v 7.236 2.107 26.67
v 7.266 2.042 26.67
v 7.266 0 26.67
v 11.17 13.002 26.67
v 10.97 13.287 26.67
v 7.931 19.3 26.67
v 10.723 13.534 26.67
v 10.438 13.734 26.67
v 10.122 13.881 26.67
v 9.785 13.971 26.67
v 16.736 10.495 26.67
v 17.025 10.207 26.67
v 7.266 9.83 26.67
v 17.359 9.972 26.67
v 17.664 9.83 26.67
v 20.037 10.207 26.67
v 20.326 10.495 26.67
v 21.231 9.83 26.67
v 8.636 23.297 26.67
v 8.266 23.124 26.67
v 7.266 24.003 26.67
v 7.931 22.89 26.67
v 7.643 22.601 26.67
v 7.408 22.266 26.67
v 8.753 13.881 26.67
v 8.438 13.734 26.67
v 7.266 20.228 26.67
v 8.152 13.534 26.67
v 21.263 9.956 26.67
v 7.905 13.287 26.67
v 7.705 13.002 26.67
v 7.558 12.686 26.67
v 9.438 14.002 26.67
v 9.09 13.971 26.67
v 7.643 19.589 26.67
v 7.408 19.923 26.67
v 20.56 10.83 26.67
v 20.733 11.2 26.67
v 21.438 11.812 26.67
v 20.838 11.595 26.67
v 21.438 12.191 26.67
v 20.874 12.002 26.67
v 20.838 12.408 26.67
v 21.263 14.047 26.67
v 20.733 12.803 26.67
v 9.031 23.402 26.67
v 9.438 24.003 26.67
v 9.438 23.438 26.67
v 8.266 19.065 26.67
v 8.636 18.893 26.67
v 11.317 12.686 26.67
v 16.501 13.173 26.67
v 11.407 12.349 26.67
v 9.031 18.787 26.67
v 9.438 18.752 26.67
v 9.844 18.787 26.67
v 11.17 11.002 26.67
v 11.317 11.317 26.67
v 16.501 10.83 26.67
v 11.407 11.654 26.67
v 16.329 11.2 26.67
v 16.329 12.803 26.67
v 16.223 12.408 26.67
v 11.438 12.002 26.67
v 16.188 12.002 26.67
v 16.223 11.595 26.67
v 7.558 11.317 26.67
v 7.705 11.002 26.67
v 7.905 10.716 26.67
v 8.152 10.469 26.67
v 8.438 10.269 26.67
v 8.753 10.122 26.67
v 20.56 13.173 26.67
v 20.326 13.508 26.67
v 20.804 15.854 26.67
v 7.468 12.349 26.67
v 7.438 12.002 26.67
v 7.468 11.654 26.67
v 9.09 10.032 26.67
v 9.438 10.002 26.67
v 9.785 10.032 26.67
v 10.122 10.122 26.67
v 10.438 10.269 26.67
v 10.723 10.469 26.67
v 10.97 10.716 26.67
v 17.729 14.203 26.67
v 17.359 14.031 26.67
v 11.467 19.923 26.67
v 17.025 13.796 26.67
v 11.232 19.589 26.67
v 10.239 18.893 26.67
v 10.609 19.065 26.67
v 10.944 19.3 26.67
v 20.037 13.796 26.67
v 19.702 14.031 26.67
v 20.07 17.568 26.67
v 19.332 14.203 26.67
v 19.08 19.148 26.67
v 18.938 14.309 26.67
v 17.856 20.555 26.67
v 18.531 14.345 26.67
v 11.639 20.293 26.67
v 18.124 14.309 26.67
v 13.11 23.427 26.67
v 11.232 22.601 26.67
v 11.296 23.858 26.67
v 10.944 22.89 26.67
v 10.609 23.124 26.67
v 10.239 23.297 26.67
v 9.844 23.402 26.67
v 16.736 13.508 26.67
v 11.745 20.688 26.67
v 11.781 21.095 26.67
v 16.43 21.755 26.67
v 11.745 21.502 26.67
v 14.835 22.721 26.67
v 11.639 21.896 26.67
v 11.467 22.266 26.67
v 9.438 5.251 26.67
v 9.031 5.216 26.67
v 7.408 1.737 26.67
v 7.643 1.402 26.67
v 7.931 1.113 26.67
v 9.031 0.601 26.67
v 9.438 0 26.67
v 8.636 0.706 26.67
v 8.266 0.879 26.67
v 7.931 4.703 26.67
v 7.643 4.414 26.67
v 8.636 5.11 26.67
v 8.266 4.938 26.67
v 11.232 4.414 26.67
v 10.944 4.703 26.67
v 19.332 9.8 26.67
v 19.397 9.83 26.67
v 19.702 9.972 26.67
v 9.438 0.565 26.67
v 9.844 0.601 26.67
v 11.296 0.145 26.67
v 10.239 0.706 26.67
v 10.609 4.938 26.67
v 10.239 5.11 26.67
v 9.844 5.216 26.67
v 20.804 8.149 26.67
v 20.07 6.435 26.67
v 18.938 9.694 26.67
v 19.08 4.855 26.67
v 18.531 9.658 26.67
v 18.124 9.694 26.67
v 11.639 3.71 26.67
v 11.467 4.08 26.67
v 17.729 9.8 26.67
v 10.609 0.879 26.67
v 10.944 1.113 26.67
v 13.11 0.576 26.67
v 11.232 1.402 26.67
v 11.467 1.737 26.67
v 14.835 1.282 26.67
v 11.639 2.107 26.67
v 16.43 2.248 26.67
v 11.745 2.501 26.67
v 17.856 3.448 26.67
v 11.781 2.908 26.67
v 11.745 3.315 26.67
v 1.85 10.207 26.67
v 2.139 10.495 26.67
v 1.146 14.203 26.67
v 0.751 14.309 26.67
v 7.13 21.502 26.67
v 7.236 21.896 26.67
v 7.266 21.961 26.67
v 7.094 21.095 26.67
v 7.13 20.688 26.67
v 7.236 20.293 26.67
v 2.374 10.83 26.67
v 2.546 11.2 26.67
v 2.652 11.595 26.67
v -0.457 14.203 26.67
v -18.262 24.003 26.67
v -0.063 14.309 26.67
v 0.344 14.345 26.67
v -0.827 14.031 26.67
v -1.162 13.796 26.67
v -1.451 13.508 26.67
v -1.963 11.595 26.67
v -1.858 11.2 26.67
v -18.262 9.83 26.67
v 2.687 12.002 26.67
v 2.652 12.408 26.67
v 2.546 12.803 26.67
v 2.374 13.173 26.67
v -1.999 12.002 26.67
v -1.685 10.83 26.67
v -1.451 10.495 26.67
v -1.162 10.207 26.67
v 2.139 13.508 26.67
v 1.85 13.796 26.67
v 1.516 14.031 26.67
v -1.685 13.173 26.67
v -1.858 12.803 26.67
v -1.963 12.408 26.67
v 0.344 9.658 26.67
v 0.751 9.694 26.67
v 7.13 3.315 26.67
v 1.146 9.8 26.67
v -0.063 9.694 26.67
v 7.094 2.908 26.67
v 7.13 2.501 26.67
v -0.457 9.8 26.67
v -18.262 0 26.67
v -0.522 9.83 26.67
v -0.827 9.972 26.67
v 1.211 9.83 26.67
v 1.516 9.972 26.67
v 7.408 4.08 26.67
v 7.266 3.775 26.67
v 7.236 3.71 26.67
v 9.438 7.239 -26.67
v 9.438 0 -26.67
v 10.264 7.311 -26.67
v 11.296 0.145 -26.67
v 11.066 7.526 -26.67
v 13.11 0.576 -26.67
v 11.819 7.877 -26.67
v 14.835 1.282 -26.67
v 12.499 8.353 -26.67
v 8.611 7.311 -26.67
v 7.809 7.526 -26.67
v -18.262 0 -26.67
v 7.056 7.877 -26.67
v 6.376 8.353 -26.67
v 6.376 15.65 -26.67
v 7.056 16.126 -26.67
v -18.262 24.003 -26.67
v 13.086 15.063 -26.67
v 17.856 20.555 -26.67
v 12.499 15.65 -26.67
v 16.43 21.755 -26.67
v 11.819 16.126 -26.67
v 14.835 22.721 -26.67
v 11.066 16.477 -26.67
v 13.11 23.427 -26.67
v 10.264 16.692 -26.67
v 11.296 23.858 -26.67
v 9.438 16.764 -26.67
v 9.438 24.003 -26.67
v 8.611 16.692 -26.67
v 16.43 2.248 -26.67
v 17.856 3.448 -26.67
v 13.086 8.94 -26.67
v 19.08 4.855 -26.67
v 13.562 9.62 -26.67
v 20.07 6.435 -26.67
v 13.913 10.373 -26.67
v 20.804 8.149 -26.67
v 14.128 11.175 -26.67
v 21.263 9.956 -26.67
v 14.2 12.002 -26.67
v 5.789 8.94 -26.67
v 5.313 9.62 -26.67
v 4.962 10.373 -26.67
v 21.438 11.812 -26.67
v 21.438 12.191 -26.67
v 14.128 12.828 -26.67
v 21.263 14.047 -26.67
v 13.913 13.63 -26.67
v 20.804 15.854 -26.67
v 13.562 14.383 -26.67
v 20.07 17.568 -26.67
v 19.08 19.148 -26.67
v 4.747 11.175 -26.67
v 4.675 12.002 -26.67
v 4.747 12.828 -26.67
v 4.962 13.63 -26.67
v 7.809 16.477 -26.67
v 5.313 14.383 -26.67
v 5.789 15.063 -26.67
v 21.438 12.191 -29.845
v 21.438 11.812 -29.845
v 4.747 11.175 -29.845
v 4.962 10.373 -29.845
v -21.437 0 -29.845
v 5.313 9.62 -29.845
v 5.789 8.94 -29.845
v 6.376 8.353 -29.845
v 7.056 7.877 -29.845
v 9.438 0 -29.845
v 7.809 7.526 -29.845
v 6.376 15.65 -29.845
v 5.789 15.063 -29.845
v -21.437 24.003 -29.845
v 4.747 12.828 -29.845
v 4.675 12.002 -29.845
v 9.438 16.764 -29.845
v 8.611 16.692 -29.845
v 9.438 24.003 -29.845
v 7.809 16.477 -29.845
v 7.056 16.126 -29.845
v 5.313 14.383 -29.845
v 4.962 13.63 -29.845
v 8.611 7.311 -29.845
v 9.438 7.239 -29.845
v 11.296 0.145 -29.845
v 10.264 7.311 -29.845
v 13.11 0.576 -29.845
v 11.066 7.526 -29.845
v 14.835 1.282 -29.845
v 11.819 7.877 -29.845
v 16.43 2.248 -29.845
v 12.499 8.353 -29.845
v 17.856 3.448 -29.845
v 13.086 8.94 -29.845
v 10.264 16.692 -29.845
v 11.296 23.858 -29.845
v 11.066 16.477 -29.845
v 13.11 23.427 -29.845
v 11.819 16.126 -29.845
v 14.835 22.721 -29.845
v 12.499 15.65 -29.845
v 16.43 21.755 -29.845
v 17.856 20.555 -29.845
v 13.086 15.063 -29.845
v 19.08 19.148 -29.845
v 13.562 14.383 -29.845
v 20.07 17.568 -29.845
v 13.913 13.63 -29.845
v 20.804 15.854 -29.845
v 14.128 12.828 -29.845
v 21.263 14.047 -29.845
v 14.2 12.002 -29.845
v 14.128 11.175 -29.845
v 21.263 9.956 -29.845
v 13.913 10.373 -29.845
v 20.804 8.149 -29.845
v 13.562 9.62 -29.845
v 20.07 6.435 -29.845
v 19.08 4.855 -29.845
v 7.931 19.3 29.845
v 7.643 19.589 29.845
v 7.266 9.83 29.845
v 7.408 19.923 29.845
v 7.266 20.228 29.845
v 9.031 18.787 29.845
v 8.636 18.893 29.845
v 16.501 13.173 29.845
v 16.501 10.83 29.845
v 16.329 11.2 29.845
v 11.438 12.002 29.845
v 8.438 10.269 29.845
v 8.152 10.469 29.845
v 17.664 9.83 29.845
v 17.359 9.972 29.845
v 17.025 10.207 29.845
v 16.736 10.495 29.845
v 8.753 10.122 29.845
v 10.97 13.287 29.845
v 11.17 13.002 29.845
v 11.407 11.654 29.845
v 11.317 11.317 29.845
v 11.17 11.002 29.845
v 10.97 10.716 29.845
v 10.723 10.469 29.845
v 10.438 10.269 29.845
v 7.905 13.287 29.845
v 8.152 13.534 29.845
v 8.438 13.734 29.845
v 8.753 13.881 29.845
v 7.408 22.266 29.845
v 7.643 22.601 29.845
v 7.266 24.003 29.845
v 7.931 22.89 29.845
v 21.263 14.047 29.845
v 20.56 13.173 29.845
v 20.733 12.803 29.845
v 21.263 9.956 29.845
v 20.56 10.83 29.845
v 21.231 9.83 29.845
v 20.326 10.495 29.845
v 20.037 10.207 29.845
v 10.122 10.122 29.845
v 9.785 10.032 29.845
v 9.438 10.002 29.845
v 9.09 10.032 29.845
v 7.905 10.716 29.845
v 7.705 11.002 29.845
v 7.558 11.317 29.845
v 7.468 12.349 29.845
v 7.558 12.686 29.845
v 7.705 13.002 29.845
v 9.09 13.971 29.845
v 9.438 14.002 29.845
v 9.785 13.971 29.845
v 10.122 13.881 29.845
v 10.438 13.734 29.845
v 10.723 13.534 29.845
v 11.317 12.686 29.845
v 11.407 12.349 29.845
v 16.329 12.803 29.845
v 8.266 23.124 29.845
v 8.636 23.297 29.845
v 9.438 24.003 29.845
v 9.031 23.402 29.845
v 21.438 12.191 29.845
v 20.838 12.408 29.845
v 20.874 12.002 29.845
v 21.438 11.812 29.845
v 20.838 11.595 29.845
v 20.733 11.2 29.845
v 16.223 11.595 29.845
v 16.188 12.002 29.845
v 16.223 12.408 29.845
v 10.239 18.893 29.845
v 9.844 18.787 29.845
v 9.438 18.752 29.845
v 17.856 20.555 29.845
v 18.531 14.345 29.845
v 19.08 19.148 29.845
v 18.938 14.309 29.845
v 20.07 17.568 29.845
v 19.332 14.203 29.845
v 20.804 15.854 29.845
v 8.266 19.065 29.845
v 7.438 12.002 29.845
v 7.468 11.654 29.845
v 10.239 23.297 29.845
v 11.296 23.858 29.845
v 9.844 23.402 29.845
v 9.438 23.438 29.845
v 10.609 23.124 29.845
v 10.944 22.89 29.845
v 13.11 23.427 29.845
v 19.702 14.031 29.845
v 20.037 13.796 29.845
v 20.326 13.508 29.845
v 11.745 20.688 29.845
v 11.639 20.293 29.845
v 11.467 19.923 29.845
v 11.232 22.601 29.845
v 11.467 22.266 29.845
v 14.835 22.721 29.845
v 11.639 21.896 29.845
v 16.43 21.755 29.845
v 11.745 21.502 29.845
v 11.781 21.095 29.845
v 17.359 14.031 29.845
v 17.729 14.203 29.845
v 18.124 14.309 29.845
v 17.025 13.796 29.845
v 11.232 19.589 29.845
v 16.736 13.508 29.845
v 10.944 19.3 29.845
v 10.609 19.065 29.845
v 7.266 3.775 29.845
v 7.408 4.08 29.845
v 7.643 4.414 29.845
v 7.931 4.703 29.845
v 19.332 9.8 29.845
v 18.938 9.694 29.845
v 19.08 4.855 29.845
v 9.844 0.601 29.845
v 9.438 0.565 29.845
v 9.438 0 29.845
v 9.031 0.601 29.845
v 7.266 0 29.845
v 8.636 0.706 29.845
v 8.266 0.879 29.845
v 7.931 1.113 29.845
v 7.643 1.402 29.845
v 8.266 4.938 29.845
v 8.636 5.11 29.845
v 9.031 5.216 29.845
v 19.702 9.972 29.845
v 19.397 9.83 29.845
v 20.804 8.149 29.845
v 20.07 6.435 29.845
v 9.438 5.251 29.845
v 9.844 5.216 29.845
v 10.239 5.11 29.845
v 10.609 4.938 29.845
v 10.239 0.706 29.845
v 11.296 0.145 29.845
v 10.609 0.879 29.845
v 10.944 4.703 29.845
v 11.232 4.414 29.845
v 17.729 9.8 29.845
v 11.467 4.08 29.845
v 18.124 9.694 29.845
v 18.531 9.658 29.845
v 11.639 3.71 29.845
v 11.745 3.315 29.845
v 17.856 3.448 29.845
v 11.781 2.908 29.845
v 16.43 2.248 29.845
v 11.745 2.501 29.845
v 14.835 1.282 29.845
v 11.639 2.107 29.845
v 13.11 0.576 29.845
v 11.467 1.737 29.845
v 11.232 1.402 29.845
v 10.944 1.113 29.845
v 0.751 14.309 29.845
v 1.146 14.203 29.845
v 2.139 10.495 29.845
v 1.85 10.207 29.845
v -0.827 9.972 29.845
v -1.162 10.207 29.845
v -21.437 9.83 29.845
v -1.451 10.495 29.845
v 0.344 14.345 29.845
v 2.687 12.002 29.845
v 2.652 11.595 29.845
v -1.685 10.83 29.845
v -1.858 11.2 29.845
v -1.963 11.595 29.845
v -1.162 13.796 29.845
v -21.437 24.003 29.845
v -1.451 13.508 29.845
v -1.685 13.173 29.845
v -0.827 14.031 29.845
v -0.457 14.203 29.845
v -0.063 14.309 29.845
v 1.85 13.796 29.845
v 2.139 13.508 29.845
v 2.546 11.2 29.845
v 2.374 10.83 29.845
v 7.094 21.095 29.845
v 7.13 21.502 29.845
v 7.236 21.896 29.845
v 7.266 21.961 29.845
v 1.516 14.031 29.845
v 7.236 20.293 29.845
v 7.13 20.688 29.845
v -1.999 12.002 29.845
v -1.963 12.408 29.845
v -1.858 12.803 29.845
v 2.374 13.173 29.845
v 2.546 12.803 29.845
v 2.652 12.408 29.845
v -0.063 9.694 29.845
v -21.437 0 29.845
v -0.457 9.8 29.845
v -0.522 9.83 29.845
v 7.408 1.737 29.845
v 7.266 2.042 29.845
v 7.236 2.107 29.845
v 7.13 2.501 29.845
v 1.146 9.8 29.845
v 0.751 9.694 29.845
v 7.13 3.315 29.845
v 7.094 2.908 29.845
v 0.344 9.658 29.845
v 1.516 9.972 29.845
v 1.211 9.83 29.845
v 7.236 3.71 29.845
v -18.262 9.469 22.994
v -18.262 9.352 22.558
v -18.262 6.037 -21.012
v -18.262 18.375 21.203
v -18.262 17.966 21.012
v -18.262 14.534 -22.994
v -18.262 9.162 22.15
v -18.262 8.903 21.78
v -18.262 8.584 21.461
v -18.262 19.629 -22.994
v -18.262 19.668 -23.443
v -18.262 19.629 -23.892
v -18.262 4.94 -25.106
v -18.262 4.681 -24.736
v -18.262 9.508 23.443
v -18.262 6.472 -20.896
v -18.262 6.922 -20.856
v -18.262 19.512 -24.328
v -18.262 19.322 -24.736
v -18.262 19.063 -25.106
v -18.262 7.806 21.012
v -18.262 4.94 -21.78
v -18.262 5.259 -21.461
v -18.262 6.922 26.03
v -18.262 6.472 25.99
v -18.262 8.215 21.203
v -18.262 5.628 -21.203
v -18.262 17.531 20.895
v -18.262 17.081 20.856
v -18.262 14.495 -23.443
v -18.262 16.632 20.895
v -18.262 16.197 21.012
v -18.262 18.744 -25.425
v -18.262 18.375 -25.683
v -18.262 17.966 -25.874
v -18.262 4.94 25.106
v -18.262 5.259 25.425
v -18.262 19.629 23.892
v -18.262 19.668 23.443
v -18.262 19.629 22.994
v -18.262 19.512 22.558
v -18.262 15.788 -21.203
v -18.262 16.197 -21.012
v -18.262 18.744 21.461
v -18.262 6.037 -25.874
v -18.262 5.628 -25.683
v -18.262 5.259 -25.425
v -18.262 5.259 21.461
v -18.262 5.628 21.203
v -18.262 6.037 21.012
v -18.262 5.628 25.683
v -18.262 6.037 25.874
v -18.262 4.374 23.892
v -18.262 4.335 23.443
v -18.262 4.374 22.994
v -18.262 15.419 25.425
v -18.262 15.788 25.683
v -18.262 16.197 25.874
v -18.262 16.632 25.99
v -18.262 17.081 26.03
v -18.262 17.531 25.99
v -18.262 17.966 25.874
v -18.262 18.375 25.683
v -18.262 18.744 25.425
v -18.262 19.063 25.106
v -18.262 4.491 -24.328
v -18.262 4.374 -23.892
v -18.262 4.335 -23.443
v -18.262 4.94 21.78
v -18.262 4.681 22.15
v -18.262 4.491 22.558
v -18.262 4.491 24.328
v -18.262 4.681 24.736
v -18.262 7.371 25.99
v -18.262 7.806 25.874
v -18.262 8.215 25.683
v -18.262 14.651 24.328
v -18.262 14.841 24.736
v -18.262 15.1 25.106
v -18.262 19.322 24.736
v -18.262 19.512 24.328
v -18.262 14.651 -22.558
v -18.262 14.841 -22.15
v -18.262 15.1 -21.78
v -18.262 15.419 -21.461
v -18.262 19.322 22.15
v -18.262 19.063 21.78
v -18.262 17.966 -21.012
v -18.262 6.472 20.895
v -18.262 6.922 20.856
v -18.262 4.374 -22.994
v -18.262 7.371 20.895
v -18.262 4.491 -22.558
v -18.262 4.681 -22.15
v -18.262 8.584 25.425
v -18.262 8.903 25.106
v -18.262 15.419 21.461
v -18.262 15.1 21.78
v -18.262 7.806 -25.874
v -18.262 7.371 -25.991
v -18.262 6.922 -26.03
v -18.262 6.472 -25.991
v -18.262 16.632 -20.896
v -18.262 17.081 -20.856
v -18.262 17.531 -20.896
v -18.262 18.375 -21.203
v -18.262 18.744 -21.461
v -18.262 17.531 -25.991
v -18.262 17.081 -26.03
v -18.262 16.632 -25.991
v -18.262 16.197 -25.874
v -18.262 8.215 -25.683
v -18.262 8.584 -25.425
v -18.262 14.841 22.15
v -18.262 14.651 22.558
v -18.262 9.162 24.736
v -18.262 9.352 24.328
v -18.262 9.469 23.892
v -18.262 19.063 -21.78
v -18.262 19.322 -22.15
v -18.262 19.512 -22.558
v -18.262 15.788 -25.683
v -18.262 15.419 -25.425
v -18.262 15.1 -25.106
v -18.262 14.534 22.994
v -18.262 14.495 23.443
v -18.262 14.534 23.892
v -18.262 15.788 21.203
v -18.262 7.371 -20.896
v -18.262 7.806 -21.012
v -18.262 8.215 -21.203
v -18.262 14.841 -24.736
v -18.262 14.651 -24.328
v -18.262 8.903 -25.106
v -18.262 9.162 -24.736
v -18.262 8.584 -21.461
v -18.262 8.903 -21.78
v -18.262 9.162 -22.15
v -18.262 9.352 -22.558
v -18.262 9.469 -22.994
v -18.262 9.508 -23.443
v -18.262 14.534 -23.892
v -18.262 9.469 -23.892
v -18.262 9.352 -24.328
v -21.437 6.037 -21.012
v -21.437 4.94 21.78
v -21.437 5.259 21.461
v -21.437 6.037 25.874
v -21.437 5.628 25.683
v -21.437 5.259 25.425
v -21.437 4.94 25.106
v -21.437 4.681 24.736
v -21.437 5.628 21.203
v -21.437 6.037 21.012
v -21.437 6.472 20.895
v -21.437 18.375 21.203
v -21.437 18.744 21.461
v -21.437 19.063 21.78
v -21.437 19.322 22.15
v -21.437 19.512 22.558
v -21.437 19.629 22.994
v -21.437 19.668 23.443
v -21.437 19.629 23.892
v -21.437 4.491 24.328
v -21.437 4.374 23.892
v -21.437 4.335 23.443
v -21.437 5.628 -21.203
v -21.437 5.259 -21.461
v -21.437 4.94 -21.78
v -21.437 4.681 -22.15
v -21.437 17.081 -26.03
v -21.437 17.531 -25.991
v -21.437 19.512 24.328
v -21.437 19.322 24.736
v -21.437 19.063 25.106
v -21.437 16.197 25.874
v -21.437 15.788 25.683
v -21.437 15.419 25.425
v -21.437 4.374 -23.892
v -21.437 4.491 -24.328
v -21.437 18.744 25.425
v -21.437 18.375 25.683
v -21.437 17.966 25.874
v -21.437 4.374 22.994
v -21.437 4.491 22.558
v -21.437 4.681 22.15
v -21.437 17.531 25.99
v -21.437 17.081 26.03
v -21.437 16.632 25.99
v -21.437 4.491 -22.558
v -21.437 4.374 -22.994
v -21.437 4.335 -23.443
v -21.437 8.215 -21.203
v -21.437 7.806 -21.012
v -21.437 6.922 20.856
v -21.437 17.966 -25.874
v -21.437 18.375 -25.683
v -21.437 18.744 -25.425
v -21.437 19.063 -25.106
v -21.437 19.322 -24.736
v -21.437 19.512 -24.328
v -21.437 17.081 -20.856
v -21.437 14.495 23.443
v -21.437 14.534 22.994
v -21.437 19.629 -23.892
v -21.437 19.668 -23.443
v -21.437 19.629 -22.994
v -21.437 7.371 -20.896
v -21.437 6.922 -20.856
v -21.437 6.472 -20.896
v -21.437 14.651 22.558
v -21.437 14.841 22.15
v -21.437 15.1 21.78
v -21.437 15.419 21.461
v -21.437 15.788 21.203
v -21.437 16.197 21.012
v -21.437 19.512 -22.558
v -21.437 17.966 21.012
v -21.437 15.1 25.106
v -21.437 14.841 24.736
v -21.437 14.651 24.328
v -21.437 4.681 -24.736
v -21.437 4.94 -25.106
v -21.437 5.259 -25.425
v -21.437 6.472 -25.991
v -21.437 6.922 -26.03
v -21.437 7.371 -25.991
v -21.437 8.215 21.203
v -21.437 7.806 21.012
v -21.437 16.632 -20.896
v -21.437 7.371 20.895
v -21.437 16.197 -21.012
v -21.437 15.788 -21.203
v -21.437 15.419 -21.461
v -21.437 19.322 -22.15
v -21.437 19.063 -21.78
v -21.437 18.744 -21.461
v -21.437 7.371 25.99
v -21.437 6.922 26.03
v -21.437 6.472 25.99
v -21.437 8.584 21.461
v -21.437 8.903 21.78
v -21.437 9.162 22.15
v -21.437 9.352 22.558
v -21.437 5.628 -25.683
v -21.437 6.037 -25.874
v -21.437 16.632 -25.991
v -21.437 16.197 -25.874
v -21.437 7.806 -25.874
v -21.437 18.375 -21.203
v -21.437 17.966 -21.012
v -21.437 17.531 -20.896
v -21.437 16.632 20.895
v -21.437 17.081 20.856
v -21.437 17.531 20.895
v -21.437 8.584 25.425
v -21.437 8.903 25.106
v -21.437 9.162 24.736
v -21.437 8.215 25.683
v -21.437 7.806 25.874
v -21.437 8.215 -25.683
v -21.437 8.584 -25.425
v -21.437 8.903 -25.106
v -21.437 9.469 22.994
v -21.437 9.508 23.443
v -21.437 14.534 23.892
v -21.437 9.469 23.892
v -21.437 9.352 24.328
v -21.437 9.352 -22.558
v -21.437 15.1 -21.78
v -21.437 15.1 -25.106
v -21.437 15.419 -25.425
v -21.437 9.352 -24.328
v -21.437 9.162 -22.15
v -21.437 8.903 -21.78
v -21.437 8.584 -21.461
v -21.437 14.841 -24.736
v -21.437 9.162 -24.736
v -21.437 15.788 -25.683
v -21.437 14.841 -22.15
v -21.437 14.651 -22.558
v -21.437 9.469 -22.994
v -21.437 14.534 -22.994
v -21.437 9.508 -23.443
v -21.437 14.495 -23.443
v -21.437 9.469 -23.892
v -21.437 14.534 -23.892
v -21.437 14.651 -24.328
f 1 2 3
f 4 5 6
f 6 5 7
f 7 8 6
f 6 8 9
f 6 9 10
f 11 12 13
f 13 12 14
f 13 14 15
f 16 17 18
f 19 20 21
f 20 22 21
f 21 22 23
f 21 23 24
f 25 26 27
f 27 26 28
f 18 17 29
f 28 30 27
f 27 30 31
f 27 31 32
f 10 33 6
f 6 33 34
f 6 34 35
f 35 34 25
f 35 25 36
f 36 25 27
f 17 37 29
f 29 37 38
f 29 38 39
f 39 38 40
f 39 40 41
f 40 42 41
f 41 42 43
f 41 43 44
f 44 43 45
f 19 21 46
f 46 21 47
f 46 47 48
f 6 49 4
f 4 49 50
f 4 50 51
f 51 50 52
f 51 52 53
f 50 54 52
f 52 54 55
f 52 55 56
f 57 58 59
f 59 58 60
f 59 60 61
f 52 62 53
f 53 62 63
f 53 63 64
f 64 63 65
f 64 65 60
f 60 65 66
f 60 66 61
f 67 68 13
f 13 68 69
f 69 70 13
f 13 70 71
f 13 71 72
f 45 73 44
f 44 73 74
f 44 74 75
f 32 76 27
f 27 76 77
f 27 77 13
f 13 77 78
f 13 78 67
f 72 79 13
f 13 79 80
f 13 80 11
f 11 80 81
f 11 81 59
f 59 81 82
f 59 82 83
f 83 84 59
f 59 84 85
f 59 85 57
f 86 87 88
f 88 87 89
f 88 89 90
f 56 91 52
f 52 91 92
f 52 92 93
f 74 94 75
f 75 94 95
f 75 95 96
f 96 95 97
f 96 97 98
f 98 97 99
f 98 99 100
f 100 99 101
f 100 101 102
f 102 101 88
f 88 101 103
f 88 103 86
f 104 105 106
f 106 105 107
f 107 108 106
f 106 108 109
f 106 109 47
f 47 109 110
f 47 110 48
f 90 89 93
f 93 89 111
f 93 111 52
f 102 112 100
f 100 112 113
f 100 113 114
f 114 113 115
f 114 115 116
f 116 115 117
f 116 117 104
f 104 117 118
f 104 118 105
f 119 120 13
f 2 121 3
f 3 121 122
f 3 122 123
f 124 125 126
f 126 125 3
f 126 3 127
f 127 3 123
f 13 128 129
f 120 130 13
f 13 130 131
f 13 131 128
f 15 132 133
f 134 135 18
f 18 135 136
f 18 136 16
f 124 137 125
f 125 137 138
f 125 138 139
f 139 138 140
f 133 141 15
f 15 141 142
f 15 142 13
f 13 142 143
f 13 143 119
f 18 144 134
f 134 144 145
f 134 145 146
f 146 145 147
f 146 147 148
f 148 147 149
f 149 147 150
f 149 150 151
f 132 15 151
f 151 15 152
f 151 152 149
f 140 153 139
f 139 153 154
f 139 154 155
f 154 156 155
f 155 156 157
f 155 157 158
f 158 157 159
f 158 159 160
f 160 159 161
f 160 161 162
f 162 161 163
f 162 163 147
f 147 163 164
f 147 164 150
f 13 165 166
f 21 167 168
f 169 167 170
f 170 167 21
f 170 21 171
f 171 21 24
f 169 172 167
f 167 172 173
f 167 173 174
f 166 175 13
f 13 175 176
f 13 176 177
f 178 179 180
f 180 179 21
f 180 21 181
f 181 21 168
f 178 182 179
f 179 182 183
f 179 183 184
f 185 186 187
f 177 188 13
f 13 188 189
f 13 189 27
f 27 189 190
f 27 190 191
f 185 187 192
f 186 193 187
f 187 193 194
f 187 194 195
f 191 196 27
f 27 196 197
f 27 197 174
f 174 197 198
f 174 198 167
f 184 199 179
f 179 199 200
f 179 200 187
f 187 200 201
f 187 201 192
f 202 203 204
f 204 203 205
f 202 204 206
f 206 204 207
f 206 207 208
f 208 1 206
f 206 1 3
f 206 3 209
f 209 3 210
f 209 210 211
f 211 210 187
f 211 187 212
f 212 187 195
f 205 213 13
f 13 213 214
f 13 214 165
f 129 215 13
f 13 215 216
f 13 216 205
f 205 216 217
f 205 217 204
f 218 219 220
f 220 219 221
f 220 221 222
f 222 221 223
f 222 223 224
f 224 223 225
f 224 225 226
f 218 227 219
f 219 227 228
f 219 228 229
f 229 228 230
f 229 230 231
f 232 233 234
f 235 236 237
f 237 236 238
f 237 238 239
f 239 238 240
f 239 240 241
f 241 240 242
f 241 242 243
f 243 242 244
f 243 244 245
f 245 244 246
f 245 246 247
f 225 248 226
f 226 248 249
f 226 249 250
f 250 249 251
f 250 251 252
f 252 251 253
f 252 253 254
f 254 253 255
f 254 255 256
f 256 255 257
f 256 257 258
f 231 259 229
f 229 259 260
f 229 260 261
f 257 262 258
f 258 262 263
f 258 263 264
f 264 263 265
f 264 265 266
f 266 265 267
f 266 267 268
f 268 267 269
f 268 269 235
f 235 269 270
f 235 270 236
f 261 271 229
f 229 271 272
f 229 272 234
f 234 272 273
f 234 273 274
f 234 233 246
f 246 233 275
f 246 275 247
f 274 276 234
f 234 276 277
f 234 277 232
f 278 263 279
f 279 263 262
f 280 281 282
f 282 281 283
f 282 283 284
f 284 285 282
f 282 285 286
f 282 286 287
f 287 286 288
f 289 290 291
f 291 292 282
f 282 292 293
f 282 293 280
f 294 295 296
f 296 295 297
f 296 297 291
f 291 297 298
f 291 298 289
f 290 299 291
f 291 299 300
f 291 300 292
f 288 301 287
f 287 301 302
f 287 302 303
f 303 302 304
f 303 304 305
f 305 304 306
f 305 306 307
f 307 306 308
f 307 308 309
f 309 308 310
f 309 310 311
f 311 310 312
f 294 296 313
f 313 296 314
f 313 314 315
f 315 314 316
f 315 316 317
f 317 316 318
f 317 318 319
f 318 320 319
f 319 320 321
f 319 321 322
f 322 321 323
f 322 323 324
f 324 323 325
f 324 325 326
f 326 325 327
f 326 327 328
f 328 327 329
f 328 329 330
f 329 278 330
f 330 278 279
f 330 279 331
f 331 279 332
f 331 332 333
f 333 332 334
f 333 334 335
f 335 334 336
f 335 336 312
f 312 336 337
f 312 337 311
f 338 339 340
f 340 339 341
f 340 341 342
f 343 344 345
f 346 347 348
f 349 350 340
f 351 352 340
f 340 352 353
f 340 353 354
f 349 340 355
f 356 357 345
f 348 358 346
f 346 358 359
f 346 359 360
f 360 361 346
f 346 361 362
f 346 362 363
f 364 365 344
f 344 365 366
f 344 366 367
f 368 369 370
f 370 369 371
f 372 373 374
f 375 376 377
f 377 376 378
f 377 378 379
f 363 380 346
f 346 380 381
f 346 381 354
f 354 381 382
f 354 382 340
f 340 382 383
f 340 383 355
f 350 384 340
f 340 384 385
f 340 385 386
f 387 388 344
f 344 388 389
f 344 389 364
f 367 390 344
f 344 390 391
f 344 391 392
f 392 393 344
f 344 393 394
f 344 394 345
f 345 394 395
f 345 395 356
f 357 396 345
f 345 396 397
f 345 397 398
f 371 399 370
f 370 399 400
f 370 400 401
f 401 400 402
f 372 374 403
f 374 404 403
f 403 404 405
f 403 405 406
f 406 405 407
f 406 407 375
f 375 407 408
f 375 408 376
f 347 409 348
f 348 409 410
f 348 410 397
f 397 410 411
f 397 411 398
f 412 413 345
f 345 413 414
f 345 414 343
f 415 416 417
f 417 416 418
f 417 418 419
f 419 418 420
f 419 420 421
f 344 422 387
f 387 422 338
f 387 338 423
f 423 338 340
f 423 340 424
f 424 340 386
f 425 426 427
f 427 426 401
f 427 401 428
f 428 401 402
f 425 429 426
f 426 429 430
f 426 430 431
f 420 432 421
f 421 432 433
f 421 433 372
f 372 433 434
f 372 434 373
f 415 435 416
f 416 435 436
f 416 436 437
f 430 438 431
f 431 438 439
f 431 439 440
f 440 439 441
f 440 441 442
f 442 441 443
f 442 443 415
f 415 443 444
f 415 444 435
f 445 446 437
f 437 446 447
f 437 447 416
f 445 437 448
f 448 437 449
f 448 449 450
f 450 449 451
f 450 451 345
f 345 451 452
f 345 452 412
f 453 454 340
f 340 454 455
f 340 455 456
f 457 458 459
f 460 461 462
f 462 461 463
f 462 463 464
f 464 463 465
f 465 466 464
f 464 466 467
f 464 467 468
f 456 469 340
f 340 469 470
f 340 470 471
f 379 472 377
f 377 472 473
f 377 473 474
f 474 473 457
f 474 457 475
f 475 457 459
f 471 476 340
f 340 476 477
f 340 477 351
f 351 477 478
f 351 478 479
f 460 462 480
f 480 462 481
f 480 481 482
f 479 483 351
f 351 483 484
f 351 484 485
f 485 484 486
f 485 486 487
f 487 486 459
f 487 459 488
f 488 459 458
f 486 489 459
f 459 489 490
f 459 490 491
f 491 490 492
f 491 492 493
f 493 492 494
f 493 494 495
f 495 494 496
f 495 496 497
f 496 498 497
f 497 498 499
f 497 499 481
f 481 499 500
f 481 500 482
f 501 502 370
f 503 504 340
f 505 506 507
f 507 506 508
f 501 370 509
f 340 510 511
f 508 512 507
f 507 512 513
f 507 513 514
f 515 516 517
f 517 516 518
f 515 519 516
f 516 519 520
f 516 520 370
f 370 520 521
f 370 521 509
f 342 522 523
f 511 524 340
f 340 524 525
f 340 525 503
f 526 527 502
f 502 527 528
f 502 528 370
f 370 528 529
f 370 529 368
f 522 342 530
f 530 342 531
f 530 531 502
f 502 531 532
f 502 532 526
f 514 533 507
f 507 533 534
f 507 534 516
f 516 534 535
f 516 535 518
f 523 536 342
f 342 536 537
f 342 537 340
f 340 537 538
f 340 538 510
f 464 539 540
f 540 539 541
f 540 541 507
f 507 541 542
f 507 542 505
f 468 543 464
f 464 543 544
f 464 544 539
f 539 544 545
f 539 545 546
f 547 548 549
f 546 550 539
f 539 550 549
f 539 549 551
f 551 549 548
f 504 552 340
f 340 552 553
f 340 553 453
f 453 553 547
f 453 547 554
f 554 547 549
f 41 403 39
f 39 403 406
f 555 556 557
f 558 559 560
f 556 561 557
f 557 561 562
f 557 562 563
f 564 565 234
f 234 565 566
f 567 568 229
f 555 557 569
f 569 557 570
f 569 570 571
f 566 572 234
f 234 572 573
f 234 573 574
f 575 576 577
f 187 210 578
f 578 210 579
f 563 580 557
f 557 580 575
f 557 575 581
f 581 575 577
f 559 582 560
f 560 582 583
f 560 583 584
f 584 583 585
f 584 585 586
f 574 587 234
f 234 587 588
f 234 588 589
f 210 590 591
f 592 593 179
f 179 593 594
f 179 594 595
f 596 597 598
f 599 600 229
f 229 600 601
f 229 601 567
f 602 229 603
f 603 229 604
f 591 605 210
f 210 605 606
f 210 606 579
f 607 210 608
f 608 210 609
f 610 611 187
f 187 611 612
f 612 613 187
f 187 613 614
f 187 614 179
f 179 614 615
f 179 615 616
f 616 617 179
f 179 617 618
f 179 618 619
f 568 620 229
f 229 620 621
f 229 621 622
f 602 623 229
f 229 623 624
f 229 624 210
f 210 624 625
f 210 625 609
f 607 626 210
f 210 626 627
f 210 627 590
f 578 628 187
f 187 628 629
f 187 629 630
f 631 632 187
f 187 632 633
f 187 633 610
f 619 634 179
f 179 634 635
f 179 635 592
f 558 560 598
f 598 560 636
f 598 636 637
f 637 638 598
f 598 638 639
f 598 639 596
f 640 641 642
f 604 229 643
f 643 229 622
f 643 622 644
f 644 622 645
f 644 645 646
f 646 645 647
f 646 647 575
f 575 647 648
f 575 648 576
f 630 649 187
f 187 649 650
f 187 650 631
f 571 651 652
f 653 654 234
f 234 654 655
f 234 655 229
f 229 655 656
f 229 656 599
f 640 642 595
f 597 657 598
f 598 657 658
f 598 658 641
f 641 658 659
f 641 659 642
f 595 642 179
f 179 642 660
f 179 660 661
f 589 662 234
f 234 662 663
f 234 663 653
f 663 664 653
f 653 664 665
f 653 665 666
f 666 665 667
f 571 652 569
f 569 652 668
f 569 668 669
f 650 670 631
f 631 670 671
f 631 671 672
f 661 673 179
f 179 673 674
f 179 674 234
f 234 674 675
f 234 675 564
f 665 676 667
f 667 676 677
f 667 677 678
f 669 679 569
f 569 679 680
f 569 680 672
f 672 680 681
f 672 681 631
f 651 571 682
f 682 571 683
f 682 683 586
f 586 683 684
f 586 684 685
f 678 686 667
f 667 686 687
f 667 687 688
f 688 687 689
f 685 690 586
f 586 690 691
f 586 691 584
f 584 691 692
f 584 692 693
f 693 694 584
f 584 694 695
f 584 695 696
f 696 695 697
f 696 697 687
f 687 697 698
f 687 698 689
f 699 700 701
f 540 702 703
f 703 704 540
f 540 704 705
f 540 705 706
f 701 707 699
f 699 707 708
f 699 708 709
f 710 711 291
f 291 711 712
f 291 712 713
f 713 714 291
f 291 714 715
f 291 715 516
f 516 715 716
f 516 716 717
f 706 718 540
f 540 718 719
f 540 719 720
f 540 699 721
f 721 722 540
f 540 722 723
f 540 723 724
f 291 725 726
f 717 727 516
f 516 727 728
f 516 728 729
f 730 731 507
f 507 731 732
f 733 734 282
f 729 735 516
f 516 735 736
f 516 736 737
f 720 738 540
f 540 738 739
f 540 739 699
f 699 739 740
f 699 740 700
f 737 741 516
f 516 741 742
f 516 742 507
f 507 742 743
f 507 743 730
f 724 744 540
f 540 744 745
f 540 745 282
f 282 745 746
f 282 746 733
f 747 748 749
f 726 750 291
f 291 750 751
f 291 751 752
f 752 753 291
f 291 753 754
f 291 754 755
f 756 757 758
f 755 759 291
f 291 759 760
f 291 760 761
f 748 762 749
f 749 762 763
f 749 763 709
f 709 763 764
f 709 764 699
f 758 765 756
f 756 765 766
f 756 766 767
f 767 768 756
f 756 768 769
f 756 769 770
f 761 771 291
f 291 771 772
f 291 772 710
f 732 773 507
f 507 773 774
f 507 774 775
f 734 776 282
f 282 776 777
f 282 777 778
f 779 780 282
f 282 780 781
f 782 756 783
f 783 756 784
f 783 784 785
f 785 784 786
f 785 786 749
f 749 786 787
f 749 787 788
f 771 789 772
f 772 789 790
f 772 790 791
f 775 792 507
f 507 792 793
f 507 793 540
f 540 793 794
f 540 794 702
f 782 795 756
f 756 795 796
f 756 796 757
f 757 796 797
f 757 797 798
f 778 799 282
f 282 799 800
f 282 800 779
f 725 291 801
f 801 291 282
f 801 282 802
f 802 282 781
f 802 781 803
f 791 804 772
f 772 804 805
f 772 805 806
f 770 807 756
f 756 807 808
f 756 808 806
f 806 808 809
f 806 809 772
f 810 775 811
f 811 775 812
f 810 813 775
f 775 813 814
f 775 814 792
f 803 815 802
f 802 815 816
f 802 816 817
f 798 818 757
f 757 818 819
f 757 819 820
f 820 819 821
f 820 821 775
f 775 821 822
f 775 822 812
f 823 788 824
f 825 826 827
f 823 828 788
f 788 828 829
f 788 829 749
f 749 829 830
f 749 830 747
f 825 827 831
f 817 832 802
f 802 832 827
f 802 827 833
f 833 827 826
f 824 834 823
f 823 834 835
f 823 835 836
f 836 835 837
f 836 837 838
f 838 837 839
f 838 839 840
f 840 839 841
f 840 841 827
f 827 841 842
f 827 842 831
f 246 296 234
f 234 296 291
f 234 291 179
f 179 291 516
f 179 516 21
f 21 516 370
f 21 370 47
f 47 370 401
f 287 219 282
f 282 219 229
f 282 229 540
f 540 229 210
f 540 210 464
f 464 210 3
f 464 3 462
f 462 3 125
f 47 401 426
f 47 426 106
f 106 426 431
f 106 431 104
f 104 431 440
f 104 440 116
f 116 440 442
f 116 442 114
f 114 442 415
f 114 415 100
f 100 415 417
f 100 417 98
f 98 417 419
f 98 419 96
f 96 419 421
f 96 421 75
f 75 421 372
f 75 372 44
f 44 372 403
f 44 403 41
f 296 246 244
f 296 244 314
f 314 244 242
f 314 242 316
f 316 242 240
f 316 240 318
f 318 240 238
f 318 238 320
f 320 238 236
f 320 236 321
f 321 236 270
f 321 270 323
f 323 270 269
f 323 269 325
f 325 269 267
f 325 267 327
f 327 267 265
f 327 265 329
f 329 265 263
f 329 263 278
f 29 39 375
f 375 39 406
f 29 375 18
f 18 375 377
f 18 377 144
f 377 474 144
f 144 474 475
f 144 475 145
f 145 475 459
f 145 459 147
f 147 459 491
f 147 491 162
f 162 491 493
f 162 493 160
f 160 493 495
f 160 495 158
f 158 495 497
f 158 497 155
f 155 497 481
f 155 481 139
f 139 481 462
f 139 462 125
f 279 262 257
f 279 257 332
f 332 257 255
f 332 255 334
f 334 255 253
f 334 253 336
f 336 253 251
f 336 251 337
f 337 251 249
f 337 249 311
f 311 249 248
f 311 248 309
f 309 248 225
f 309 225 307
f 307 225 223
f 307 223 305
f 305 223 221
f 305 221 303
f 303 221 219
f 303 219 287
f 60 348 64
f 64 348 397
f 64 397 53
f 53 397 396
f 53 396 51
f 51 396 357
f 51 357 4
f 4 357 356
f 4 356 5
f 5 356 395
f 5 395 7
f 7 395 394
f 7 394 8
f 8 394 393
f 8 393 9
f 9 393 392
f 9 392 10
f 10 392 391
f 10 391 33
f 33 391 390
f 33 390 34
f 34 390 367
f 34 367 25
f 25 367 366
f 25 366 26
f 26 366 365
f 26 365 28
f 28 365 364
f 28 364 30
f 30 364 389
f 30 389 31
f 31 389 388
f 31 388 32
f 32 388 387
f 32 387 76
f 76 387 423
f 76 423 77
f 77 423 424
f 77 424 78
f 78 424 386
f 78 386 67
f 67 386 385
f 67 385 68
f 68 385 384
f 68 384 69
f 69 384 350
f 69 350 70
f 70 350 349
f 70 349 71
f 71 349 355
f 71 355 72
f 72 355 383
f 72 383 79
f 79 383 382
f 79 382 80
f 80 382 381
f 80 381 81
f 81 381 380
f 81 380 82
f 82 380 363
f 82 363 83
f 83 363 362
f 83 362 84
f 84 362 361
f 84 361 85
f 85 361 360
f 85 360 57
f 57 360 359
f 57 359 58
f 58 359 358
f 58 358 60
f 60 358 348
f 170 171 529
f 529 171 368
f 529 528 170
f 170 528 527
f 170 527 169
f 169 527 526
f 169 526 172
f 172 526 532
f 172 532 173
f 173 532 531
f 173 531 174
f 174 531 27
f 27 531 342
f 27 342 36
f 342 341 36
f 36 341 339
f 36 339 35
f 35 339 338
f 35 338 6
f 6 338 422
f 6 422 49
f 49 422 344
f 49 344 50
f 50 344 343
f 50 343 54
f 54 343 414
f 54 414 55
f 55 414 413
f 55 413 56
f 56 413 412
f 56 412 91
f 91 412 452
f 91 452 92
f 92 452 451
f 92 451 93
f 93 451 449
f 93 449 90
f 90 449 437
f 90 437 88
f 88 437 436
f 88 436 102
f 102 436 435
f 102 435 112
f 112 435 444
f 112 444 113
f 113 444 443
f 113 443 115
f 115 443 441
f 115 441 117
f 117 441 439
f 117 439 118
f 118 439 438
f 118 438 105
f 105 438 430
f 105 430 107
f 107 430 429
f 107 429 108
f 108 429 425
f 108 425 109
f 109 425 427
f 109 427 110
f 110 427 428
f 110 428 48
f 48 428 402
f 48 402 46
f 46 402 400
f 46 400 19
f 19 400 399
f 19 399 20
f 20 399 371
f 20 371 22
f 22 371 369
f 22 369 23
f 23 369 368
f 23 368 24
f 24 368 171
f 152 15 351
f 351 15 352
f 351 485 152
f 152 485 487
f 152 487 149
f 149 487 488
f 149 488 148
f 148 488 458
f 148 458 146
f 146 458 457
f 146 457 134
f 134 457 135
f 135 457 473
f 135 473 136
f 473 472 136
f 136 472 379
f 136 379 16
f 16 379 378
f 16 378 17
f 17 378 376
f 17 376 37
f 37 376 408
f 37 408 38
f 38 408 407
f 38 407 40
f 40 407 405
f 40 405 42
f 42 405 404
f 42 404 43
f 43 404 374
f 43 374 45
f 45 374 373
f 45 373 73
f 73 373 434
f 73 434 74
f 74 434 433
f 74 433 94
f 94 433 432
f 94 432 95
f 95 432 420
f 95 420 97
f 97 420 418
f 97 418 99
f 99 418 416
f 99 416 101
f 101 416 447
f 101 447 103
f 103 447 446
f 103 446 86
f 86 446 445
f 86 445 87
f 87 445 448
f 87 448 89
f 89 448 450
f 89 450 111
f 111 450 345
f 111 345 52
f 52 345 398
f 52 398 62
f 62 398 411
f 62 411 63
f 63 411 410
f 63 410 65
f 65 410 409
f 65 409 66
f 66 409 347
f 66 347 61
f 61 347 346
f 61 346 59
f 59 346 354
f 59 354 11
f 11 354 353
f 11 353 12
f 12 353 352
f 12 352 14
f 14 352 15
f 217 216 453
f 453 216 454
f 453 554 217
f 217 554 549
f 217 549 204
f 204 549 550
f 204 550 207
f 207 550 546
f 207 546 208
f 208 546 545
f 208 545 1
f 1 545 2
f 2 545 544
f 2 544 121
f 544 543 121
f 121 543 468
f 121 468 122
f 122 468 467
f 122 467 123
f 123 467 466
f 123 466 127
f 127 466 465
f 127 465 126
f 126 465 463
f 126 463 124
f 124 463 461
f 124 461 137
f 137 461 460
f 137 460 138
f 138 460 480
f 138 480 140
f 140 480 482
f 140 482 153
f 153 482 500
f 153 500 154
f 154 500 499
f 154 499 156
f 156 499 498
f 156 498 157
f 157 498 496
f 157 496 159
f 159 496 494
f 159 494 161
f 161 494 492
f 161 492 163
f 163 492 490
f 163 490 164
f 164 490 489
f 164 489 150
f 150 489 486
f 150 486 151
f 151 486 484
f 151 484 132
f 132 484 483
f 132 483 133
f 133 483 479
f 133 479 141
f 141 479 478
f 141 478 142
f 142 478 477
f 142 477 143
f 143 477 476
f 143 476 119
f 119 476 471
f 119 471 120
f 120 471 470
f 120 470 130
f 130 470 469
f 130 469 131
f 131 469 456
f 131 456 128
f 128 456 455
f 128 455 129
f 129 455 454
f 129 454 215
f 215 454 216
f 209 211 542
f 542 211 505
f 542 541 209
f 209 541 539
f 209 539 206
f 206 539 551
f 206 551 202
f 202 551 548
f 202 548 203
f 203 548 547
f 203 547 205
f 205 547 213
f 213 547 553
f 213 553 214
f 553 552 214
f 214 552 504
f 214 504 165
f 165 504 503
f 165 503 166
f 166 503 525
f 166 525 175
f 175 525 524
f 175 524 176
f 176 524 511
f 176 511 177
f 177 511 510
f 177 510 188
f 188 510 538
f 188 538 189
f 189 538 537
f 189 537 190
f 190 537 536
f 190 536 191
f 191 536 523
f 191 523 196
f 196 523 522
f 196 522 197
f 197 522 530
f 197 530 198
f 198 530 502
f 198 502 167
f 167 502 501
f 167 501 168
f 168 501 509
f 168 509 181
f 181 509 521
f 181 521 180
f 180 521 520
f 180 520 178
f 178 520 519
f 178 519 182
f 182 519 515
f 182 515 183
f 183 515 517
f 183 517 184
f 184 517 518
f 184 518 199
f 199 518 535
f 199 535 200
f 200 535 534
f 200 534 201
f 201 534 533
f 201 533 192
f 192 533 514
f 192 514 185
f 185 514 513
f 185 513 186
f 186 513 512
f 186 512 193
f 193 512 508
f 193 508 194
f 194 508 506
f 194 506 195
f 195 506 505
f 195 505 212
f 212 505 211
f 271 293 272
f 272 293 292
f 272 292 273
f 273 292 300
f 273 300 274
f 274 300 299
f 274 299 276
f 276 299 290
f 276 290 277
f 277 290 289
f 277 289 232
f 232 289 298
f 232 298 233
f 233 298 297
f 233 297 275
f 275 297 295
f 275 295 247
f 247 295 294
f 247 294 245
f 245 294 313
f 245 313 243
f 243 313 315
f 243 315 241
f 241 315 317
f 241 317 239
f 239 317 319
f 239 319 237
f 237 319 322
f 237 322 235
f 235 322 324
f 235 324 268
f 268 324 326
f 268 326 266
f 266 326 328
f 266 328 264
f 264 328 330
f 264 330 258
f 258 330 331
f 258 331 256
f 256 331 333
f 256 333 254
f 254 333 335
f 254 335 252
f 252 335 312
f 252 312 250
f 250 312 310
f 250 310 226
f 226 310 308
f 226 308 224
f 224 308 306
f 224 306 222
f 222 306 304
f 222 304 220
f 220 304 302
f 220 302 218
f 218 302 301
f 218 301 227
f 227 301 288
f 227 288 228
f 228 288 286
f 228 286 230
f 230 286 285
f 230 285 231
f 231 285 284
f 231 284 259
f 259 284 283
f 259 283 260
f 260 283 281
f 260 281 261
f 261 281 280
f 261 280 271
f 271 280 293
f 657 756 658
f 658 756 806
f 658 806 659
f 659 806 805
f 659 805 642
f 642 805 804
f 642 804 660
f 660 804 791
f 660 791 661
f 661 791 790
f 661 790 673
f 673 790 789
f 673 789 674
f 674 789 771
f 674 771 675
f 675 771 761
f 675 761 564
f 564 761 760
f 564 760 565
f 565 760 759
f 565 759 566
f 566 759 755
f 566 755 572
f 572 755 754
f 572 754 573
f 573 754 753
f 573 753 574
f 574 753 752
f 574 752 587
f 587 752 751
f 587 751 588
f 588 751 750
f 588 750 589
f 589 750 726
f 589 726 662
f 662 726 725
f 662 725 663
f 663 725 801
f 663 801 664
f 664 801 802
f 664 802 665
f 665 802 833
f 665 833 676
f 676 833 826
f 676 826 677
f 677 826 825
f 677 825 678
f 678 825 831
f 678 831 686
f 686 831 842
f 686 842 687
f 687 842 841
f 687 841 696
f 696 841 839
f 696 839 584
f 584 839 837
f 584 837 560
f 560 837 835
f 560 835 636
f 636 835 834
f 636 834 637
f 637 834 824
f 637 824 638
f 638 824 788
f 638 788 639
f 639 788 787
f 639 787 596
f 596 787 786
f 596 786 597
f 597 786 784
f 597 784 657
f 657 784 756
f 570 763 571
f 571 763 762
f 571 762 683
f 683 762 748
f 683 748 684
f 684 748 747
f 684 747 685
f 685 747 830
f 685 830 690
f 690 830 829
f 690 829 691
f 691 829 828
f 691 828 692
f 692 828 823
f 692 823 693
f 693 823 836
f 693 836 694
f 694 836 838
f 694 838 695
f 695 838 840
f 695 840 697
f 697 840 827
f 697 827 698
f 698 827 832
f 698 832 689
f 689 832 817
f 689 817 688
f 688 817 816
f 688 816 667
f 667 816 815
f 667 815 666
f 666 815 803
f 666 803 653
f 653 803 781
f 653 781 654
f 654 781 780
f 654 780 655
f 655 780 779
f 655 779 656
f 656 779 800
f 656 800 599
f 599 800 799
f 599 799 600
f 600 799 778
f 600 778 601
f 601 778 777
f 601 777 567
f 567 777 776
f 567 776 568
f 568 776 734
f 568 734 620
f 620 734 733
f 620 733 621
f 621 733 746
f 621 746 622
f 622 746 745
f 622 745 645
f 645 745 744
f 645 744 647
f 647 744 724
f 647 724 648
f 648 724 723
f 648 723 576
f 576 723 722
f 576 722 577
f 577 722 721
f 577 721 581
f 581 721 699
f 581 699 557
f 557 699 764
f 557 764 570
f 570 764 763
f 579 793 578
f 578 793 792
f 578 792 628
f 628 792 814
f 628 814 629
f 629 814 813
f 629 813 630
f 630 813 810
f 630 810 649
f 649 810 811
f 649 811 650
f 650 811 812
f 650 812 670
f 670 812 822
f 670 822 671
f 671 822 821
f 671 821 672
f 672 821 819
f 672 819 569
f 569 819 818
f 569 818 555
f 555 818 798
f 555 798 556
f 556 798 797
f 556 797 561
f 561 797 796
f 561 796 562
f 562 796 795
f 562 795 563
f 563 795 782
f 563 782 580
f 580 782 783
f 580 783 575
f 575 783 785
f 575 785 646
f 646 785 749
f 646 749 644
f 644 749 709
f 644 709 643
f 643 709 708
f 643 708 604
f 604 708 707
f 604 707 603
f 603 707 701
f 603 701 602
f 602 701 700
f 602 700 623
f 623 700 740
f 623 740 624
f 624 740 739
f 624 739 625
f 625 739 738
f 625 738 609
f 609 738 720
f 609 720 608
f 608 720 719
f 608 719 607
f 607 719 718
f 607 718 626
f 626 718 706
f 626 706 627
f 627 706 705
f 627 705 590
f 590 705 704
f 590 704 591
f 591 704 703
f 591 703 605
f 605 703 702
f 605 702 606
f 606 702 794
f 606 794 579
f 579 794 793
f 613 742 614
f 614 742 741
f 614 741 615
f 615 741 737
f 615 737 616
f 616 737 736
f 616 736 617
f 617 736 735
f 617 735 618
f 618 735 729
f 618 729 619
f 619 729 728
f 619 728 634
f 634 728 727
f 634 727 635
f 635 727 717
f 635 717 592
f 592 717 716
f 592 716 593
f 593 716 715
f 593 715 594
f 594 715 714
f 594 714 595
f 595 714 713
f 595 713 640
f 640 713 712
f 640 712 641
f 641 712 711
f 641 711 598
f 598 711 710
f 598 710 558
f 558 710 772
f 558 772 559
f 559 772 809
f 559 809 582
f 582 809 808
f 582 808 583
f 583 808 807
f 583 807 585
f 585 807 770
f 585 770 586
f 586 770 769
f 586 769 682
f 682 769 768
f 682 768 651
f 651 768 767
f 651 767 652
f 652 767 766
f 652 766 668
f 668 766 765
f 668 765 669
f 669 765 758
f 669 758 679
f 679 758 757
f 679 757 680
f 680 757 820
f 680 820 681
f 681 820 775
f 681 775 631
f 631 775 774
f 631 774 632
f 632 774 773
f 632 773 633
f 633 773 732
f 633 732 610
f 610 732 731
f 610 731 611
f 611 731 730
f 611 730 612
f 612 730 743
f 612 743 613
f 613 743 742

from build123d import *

# Parameters (mm, degrees)
BOSS_EXTRUDE1_DEPTH = 24.003
CUT_EXTRUDE1_DEPTH  = 68.813026147
CUT_EXTRUDE2_REACH  = 69.813
SKETCH3_R           = 2
SKETCH3_R_2         = 2.34315
CUT_EXTRUDE3_REACH  = 69.813
SKETCH4_R           = 4.7625
CUT_EXTRUDE4_REACH  = 59.49
SKETCH5_R           = 2.5868


with BuildPart() as part:
    # Sketch1 → Boss-Extrude1 (new body)
    with BuildSketch(Plane(origin=(0, 0, 0), x_dir=(1, 0, 0), z_dir=(0, 1, 0))):
        Polygon((-21.4375, -29.845), (21.4375, -29.845), (21.4375, -26.67), (-18.2625, -26.67), (-18.2625, 26.67), (21.4375, 26.67), (21.4375, 29.845), (-21.4375, 29.845), align=None)
    extrude(amount=BOSS_EXTRUDE1_DEPTH)

    # Sketch2 → Cut-Extrude1 (cut, through all)
    with BuildSketch(Plane.XY.offset(29.845)):
        with BuildLine():
            Line((112.499618931, 24.003), (15.0875, 24.003))
            Line((15.0875, 24.003), (9.4375, 24.003))
            ThreePointArc((9.4375, 24.003), (21.439, 12.0015), (9.4375, 0))
            Line((9.4375, 0), (15.0875, 0))
            Line((15.0875, 0), (112.499618931, 0))
            Line((112.499618931, 0), (307.323856793, 0))
            Line((307.323856793, 0), (307.323856793, 24.003))
            Line((307.323856793, 24.003), (112.499618931, 24.003))
        make_face()
    extrude(amount=-CUT_EXTRUDE1_DEPTH, mode=Mode.SUBTRACT)

    # Sketch3 → Cut-Extrude2 (cut, up to next)
    with BuildSketch(Plane.XY.offset(29.845), mode=Mode.PRIVATE) as cut_extrude2_sk1:
        with Locations((9.4375, 12.0015)):
            Circle(SKETCH3_R)
    cut_extrude2_tool1 = extrude(cut_extrude2_sk1.sketch, amount=-CUT_EXTRUDE2_REACH, mode=Mode.PRIVATE) & part.part
    # Sketch3 → Cut-Extrude2 (cut, up to next)
    with BuildSketch(Plane.XY.offset(29.845), mode=Mode.PRIVATE) as cut_extrude2_sk2:
        with Locations((9.4375, 21.0947)):
            Circle(SKETCH3_R_2)
    cut_extrude2_tool2 = extrude(cut_extrude2_sk2.sketch, amount=-CUT_EXTRUDE2_REACH, mode=Mode.PRIVATE) & part.part
    # Sketch3 → Cut-Extrude2 (cut, up to next)
    with BuildSketch(Plane.XY.offset(29.845), mode=Mode.PRIVATE) as cut_extrude2_sk3:
        with Locations((18.5307, 12.0015)):
            Circle(SKETCH3_R_2)
    cut_extrude2_tool3 = extrude(cut_extrude2_sk3.sketch, amount=-CUT_EXTRUDE2_REACH, mode=Mode.PRIVATE) & part.part
    # Sketch3 → Cut-Extrude2 (cut, up to next)
    with BuildSketch(Plane.XY.offset(29.845), mode=Mode.PRIVATE) as cut_extrude2_sk4:
        with Locations((9.4375, 2.9083)):
            Circle(SKETCH3_R_2)
    cut_extrude2_tool4 = extrude(cut_extrude2_sk4.sketch, amount=-CUT_EXTRUDE2_REACH, mode=Mode.PRIVATE) & part.part
    # Sketch3 → Cut-Extrude2 (cut, up to next)
    with BuildSketch(Plane.XY.offset(29.845), mode=Mode.PRIVATE) as cut_extrude2_sk5:
        with Locations((0.3443, 12.0015)):
            Circle(SKETCH3_R_2)
    cut_extrude2_tool5 = extrude(cut_extrude2_sk5.sketch, amount=-CUT_EXTRUDE2_REACH, mode=Mode.PRIVATE) & part.part
    add(cut_extrude2_tool1.solids().sort_by_distance((9.4375, 12.0015, 29.845))[0], mode=Mode.SUBTRACT)
    add(cut_extrude2_tool2.solids().sort_by_distance((9.4375, 21.0947, 29.845))[0], mode=Mode.SUBTRACT)
    add(cut_extrude2_tool3.solids().sort_by_distance((18.5307, 12.0015, 29.845))[0], mode=Mode.SUBTRACT)
    add(cut_extrude2_tool4.solids().sort_by_distance((9.4375, 2.9083, 29.845))[0], mode=Mode.SUBTRACT)
    add(cut_extrude2_tool5.solids().sort_by_distance((0.3443, 12.0015, 29.845))[0], mode=Mode.SUBTRACT)

    # Sketch4 → Cut-Extrude3 (cut, up to next)
    with BuildSketch(Plane(origin=(0, 0, -29.845), x_dir=(-1, 0, 0), z_dir=(0, 0, -1)), mode=Mode.PRIVATE) as cut_extrude3_sk1:
        with Locations((-9.4375, 12.0015)):
            Circle(SKETCH4_R)
    cut_extrude3_tool1 = extrude(cut_extrude3_sk1.sketch, amount=-CUT_EXTRUDE3_REACH, mode=Mode.PRIVATE) & part.part
    add(cut_extrude3_tool1.solids().sort_by_distance((9.4375, 12.0015, -29.845))[0], mode=Mode.SUBTRACT)

    # Sketch5 → Cut-Extrude4 (cut, up to next)
    with BuildSketch(Plane.ZY.offset(21.4375), mode=Mode.PRIVATE) as cut_extrude4_sk1:
        with Locations((-23.443, 17.0815)):
            Circle(SKETCH5_R)
    cut_extrude4_tool1 = extrude(cut_extrude4_sk1.sketch, amount=-CUT_EXTRUDE4_REACH, mode=Mode.PRIVATE) & part.part
    # Sketch5 → Cut-Extrude4 (cut, up to next)
    with BuildSketch(Plane.ZY.offset(21.4375), mode=Mode.PRIVATE) as cut_extrude4_sk2:
        with Locations((-23.443, 6.9215)):
            Circle(SKETCH5_R)
    cut_extrude4_tool2 = extrude(cut_extrude4_sk2.sketch, amount=-CUT_EXTRUDE4_REACH, mode=Mode.PRIVATE) & part.part
    # Sketch5 → Cut-Extrude4 (cut, up to next)
    with BuildSketch(Plane.ZY.offset(21.4375), mode=Mode.PRIVATE) as cut_extrude4_sk3:
        with Locations((23.443, 6.9215)):
            Circle(SKETCH5_R)
    cut_extrude4_tool3 = extrude(cut_extrude4_sk3.sketch, amount=-CUT_EXTRUDE4_REACH, mode=Mode.PRIVATE) & part.part
    # Sketch5 → Cut-Extrude4 (cut, up to next)
    with BuildSketch(Plane.ZY.offset(21.4375), mode=Mode.PRIVATE) as cut_extrude4_sk4:
        with Locations((23.443, 17.0815)):
            Circle(SKETCH5_R)
    cut_extrude4_tool4 = extrude(cut_extrude4_sk4.sketch, amount=-CUT_EXTRUDE4_REACH, mode=Mode.PRIVATE) & part.part
    add(cut_extrude4_tool1.solids().sort_by_distance((-21.4375, 17.0815, -23.443))[0], mode=Mode.SUBTRACT)
    add(cut_extrude4_tool2.solids().sort_by_distance((-21.4375, 6.9215, -23.443))[0], mode=Mode.SUBTRACT)
    add(cut_extrude4_tool3.solids().sort_by_distance((-21.4375, 6.9215, 23.443))[0], mode=Mode.SUBTRACT)
    add(cut_extrude4_tool4.solids().sort_by_distance((-21.4375, 17.0815, 23.443))[0], mode=Mode.SUBTRACT)


solid = part.part
